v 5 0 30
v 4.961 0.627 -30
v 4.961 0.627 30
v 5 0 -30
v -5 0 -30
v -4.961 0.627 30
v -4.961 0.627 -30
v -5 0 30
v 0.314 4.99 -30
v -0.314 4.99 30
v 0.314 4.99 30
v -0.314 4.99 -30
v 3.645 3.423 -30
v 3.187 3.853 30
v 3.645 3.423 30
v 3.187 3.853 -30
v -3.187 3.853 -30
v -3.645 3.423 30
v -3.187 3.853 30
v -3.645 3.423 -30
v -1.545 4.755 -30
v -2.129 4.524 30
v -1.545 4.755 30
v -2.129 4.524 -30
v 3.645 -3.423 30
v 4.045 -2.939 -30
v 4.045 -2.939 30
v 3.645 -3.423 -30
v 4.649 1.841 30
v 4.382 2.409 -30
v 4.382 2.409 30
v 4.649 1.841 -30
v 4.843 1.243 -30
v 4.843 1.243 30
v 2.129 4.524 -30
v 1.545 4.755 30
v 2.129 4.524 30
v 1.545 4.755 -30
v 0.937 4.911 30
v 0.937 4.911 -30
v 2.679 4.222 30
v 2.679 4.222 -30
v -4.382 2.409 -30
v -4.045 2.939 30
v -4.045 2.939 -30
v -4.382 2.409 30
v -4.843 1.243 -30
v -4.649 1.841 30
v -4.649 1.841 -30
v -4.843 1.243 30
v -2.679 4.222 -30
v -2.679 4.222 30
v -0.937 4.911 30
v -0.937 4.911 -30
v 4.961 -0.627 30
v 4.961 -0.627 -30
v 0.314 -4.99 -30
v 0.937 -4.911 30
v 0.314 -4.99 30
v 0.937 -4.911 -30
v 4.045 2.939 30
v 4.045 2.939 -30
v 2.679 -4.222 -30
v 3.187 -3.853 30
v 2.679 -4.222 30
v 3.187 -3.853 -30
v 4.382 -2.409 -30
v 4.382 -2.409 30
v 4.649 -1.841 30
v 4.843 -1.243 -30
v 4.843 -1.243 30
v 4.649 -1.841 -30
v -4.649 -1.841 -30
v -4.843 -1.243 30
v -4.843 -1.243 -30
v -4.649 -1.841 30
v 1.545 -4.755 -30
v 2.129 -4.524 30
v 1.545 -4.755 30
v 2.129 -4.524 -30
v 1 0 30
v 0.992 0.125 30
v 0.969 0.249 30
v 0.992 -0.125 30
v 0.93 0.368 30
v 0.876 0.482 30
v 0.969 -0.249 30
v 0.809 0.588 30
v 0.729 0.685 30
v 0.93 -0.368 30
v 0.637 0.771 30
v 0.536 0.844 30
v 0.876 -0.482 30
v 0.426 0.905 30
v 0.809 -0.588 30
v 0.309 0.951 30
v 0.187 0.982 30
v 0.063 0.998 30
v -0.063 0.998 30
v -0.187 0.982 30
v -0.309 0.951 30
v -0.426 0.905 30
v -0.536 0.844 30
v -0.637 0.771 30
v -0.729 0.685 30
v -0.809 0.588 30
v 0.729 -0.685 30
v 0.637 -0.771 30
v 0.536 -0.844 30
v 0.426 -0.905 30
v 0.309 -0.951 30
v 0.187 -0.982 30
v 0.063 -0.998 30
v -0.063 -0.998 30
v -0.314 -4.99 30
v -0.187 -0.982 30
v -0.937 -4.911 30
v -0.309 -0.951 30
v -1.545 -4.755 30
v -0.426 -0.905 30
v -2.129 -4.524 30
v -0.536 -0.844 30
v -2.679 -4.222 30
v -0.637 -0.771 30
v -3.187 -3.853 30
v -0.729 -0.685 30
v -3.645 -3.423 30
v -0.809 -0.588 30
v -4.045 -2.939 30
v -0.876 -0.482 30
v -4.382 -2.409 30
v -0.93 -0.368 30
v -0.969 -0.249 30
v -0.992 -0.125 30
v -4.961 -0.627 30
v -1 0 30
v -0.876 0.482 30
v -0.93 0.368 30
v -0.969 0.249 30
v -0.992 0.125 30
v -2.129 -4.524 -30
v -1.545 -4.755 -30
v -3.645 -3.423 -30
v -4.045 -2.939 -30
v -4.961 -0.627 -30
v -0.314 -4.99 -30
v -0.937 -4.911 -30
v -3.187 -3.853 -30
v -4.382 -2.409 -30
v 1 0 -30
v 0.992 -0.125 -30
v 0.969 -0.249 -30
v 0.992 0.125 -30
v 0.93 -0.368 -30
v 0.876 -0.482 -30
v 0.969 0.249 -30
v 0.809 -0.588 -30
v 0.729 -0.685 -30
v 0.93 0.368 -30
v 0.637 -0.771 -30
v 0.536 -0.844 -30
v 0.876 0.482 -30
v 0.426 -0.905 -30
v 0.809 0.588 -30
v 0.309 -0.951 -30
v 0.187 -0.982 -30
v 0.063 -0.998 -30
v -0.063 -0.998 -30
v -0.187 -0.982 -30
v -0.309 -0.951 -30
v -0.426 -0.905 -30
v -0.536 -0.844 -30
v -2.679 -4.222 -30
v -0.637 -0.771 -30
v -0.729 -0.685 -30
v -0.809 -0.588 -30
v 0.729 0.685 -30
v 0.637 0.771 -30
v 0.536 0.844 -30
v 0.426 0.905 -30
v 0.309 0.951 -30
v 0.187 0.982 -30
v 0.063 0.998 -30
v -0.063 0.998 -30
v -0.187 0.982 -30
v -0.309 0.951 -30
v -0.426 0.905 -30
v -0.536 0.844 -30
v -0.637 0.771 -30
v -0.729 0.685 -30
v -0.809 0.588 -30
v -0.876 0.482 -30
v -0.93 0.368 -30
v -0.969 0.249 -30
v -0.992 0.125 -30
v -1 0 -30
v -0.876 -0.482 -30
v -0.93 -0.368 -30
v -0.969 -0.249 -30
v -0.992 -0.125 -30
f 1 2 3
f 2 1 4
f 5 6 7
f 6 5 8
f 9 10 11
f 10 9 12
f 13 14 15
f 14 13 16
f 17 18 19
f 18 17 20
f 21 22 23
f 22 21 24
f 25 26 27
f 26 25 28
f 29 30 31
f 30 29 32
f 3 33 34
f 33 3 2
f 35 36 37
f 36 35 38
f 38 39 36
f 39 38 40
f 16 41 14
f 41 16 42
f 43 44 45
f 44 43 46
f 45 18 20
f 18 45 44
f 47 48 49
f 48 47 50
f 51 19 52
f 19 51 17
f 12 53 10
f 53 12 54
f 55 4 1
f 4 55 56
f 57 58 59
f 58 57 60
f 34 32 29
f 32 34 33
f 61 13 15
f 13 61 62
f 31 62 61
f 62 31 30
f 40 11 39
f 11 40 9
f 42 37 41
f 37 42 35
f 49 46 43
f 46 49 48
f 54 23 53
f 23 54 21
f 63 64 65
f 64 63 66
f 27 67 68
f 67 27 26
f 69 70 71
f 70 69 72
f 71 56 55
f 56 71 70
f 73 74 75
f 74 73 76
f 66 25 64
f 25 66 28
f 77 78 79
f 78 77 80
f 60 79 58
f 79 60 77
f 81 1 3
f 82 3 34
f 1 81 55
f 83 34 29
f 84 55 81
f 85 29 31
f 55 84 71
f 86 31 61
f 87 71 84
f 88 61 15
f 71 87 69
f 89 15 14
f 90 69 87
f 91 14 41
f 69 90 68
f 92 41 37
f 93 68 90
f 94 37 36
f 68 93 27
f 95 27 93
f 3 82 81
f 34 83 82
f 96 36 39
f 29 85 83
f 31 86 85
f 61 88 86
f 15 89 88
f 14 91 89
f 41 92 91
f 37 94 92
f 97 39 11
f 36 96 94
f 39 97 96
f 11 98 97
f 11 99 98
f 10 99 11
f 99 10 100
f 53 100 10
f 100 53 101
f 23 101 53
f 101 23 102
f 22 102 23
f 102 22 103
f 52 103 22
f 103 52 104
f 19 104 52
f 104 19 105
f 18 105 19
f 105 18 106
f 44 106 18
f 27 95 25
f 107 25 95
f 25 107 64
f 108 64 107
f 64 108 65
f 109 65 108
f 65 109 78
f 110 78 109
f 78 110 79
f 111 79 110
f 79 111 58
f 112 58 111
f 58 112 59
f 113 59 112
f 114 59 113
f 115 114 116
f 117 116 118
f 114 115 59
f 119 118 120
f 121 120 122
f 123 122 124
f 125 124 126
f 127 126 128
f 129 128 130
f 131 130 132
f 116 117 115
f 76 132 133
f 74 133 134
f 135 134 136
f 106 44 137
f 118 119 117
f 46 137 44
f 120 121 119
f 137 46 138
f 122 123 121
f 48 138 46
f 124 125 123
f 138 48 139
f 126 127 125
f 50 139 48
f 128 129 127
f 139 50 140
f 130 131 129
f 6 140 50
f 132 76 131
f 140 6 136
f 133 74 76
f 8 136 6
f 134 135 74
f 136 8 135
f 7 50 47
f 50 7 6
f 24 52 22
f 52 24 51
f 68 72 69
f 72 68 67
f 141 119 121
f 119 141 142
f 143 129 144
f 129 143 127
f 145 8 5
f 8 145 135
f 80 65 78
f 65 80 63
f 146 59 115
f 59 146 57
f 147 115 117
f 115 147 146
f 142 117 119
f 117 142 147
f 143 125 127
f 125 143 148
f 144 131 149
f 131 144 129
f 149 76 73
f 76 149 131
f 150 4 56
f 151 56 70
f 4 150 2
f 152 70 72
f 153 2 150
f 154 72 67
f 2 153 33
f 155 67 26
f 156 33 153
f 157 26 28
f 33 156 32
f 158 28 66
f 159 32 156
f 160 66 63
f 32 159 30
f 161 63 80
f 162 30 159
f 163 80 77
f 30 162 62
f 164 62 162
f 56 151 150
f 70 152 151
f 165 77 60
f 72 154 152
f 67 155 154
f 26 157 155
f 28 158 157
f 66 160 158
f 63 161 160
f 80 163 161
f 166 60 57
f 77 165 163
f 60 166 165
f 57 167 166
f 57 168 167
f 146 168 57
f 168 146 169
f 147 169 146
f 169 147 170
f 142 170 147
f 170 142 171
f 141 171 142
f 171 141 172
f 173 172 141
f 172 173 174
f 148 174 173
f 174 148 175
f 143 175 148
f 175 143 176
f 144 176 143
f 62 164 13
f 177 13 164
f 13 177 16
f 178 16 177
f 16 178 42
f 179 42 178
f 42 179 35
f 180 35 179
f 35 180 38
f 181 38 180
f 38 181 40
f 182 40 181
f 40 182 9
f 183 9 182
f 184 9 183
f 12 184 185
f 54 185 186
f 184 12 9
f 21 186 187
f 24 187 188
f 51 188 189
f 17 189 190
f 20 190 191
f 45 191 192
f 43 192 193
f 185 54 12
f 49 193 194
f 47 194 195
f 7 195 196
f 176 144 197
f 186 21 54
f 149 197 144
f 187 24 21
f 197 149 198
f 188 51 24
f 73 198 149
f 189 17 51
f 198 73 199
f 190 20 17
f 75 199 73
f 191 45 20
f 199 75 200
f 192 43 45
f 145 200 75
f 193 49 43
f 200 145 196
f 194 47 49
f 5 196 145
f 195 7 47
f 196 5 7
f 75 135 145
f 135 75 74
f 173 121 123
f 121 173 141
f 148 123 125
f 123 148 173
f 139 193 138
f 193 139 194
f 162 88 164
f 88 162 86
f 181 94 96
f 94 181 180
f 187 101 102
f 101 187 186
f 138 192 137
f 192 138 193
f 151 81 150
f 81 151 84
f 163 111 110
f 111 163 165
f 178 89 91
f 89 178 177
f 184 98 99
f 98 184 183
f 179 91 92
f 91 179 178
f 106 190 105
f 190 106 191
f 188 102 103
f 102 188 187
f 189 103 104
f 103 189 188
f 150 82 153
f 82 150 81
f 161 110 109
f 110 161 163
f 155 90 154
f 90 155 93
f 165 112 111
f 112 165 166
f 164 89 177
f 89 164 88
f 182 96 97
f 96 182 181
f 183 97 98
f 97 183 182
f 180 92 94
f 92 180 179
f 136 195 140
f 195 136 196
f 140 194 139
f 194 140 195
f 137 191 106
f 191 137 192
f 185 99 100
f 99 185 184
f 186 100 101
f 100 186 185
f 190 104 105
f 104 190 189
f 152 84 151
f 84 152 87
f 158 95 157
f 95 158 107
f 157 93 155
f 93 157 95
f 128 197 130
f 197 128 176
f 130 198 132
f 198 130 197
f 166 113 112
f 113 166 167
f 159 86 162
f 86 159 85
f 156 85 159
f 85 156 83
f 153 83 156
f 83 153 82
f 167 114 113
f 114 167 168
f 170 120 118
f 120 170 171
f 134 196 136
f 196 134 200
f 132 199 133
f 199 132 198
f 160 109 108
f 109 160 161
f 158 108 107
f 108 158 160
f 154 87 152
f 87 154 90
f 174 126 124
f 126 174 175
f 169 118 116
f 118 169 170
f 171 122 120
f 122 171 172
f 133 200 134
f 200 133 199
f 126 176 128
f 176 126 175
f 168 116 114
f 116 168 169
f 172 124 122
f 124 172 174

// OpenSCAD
$fn = 50;


difference() {
	union() {
		translate(v = [0, 0, -30.0000000000]) {
			cylinder(h = 60, r = 5.0000000000);
		}
	}
	union() {
		translate(v = [0, 0, -100.0000000000]) {
			cylinder(h = 200, r = 1.0000000000);
		}
	}
}
